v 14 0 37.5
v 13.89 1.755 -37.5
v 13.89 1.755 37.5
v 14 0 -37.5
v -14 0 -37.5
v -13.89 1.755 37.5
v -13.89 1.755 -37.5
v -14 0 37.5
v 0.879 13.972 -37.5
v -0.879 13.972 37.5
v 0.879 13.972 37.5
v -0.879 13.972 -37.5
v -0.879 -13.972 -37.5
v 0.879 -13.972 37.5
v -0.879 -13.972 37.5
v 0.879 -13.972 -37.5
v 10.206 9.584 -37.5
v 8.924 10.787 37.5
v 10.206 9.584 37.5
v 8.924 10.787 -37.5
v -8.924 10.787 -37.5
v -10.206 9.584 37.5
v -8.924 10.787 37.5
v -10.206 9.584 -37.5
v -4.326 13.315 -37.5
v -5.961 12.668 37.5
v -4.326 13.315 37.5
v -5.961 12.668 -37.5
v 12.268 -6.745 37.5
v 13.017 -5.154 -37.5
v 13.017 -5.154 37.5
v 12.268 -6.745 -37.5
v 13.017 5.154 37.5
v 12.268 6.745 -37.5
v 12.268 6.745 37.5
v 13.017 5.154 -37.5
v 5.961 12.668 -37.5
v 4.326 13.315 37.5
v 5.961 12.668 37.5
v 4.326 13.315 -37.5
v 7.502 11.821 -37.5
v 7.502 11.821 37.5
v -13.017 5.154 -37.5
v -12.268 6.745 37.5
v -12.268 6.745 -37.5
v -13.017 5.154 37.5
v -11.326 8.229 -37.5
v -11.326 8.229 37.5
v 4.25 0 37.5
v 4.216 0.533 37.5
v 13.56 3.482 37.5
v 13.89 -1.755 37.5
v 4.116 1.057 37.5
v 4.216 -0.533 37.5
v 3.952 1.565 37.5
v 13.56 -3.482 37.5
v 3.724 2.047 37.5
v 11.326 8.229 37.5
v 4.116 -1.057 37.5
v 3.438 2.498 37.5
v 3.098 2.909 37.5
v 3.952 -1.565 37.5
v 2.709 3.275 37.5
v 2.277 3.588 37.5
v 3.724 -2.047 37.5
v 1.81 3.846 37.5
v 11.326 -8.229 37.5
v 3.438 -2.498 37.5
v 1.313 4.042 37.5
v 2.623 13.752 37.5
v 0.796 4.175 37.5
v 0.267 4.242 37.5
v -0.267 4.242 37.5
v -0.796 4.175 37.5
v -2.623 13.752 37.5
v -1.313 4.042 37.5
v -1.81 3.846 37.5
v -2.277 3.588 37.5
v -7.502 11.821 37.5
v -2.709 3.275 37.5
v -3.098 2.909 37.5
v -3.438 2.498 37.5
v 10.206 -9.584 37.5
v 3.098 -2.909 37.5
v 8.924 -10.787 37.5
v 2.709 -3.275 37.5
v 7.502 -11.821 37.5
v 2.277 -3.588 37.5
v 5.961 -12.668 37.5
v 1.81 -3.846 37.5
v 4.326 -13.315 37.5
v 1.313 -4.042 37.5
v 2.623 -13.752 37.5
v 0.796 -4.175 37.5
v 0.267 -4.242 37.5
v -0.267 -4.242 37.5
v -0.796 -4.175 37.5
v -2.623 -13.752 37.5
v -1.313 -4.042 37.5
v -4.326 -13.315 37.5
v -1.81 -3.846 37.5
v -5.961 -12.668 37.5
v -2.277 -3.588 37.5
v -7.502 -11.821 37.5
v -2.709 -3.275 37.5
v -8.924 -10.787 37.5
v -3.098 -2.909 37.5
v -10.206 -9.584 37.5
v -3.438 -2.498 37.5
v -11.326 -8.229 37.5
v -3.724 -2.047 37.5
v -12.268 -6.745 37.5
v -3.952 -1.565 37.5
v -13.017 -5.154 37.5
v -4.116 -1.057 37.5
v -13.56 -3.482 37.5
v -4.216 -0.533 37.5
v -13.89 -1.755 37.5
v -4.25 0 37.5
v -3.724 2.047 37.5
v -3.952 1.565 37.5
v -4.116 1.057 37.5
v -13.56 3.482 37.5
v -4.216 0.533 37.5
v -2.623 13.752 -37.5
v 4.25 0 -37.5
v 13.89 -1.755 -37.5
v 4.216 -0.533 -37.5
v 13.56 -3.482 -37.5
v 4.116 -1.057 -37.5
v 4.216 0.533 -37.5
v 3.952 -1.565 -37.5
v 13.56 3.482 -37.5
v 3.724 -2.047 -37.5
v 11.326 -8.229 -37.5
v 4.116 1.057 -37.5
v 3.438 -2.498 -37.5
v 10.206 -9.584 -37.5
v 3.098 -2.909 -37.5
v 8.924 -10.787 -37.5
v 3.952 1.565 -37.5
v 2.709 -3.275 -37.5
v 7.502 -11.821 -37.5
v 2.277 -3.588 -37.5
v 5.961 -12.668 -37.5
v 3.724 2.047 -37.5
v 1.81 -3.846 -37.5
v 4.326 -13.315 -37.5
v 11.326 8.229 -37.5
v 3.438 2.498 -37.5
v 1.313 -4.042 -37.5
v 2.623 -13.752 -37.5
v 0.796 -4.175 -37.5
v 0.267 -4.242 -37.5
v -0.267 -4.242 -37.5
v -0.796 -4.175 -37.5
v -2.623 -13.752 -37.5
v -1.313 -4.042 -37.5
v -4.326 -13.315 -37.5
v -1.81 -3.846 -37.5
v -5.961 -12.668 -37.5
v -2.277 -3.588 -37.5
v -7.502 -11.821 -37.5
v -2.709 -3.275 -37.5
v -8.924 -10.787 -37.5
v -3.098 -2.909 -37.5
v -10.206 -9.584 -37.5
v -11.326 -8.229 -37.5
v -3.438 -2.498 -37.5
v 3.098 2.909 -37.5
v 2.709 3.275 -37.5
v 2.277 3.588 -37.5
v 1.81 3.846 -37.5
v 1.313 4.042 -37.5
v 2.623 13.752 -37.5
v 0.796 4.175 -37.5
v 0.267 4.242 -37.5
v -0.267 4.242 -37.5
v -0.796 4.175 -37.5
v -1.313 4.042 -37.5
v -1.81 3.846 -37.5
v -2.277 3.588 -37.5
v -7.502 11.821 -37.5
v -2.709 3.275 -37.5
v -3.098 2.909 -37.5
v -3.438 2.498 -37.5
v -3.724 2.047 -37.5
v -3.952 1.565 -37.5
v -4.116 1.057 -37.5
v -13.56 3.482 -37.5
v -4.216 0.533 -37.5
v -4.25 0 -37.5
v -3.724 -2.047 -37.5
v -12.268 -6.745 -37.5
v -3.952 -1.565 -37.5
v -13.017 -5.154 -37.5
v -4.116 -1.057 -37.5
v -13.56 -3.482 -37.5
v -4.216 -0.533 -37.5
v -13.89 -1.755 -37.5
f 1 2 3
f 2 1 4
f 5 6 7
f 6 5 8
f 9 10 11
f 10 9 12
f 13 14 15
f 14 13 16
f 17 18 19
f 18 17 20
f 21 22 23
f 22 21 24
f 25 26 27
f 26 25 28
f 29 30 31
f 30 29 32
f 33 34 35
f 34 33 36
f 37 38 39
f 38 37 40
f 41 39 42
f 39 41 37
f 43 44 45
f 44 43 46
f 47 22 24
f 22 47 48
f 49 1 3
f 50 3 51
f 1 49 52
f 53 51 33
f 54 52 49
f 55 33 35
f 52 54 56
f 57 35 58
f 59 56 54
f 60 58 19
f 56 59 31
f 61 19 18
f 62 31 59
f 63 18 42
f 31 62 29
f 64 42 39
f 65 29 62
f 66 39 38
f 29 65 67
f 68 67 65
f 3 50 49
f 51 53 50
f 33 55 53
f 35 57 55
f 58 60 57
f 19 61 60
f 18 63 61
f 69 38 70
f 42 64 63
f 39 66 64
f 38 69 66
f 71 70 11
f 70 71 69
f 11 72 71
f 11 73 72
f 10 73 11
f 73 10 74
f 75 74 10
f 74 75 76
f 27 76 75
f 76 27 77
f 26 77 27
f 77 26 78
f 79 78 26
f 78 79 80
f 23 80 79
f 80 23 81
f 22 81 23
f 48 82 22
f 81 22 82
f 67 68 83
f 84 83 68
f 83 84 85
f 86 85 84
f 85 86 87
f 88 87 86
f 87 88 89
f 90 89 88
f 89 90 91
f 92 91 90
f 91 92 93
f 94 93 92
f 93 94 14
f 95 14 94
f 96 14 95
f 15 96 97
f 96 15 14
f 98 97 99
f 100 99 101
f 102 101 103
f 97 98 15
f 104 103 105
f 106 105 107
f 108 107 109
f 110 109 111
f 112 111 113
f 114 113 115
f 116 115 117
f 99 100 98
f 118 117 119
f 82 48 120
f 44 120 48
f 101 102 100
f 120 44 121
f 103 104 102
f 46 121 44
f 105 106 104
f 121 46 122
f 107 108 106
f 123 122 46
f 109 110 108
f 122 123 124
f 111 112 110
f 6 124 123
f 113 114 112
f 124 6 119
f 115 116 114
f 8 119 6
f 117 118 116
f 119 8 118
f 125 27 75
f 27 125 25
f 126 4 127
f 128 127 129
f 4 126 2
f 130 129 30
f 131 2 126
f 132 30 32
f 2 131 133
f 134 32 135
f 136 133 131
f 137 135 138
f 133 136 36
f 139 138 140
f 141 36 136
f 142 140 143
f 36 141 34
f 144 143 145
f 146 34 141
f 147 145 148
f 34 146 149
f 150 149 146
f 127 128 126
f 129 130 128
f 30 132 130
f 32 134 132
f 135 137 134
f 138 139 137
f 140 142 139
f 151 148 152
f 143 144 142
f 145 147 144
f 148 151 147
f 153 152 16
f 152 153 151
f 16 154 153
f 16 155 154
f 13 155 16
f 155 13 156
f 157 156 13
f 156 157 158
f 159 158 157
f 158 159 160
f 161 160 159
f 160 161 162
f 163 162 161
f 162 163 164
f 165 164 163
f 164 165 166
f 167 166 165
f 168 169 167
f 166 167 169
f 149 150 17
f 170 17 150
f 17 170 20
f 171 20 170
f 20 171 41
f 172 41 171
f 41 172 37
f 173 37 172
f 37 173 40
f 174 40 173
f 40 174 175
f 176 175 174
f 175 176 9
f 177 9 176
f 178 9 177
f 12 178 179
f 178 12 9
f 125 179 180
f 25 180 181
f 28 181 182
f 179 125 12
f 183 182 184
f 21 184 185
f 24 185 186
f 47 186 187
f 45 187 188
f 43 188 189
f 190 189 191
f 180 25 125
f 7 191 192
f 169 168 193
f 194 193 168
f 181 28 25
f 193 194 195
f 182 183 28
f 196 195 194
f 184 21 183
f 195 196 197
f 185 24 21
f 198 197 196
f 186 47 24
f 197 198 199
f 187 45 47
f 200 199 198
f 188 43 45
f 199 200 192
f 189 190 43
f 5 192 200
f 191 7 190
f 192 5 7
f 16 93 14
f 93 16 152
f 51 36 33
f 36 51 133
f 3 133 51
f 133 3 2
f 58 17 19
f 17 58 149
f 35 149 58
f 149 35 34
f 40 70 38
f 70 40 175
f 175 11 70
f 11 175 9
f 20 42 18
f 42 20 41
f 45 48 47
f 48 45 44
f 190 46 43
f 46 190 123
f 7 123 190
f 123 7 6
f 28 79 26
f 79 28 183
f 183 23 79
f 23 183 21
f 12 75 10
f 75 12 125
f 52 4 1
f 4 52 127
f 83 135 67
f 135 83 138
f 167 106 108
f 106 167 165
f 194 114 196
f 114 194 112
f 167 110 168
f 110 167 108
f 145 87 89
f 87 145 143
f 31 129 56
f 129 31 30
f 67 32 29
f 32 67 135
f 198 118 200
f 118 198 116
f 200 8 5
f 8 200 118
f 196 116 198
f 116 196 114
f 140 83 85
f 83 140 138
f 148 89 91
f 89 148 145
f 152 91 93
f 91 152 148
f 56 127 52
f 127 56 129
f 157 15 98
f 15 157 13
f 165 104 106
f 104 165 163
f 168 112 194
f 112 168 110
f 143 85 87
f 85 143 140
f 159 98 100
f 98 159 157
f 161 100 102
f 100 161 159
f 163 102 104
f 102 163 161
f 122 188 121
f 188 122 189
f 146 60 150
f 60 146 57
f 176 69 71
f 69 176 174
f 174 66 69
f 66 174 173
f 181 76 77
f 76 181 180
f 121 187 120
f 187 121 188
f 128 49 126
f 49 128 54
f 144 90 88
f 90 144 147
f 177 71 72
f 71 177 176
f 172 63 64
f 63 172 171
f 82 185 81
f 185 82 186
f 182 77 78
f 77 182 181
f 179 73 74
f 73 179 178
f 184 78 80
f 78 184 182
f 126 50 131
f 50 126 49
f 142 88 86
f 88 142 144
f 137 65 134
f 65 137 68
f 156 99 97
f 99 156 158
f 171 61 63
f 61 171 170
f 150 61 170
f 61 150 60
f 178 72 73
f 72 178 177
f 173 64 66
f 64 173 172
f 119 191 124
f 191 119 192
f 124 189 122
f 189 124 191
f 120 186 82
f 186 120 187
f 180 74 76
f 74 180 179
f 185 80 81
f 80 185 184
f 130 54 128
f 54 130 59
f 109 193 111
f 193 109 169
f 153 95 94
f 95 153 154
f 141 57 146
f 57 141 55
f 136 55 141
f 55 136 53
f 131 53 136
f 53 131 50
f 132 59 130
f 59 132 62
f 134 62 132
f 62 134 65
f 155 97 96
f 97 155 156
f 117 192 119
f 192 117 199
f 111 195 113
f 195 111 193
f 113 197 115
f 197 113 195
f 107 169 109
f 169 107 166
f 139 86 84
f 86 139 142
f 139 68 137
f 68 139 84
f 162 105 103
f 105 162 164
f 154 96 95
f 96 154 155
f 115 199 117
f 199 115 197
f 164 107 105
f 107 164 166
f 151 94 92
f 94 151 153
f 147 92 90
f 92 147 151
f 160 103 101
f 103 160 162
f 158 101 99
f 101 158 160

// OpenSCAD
$fn = 50;


difference() {
	union() {
		translate(v = [0, 0, -37.5000000000]) {
			cylinder(h = 75, r = 14.0000000000);
		}
	}
	union() {
		translate(v = [0, 0, -100.0000000000]) {
			cylinder(h = 200, r = 4.2500000000);
		}
	}
}
